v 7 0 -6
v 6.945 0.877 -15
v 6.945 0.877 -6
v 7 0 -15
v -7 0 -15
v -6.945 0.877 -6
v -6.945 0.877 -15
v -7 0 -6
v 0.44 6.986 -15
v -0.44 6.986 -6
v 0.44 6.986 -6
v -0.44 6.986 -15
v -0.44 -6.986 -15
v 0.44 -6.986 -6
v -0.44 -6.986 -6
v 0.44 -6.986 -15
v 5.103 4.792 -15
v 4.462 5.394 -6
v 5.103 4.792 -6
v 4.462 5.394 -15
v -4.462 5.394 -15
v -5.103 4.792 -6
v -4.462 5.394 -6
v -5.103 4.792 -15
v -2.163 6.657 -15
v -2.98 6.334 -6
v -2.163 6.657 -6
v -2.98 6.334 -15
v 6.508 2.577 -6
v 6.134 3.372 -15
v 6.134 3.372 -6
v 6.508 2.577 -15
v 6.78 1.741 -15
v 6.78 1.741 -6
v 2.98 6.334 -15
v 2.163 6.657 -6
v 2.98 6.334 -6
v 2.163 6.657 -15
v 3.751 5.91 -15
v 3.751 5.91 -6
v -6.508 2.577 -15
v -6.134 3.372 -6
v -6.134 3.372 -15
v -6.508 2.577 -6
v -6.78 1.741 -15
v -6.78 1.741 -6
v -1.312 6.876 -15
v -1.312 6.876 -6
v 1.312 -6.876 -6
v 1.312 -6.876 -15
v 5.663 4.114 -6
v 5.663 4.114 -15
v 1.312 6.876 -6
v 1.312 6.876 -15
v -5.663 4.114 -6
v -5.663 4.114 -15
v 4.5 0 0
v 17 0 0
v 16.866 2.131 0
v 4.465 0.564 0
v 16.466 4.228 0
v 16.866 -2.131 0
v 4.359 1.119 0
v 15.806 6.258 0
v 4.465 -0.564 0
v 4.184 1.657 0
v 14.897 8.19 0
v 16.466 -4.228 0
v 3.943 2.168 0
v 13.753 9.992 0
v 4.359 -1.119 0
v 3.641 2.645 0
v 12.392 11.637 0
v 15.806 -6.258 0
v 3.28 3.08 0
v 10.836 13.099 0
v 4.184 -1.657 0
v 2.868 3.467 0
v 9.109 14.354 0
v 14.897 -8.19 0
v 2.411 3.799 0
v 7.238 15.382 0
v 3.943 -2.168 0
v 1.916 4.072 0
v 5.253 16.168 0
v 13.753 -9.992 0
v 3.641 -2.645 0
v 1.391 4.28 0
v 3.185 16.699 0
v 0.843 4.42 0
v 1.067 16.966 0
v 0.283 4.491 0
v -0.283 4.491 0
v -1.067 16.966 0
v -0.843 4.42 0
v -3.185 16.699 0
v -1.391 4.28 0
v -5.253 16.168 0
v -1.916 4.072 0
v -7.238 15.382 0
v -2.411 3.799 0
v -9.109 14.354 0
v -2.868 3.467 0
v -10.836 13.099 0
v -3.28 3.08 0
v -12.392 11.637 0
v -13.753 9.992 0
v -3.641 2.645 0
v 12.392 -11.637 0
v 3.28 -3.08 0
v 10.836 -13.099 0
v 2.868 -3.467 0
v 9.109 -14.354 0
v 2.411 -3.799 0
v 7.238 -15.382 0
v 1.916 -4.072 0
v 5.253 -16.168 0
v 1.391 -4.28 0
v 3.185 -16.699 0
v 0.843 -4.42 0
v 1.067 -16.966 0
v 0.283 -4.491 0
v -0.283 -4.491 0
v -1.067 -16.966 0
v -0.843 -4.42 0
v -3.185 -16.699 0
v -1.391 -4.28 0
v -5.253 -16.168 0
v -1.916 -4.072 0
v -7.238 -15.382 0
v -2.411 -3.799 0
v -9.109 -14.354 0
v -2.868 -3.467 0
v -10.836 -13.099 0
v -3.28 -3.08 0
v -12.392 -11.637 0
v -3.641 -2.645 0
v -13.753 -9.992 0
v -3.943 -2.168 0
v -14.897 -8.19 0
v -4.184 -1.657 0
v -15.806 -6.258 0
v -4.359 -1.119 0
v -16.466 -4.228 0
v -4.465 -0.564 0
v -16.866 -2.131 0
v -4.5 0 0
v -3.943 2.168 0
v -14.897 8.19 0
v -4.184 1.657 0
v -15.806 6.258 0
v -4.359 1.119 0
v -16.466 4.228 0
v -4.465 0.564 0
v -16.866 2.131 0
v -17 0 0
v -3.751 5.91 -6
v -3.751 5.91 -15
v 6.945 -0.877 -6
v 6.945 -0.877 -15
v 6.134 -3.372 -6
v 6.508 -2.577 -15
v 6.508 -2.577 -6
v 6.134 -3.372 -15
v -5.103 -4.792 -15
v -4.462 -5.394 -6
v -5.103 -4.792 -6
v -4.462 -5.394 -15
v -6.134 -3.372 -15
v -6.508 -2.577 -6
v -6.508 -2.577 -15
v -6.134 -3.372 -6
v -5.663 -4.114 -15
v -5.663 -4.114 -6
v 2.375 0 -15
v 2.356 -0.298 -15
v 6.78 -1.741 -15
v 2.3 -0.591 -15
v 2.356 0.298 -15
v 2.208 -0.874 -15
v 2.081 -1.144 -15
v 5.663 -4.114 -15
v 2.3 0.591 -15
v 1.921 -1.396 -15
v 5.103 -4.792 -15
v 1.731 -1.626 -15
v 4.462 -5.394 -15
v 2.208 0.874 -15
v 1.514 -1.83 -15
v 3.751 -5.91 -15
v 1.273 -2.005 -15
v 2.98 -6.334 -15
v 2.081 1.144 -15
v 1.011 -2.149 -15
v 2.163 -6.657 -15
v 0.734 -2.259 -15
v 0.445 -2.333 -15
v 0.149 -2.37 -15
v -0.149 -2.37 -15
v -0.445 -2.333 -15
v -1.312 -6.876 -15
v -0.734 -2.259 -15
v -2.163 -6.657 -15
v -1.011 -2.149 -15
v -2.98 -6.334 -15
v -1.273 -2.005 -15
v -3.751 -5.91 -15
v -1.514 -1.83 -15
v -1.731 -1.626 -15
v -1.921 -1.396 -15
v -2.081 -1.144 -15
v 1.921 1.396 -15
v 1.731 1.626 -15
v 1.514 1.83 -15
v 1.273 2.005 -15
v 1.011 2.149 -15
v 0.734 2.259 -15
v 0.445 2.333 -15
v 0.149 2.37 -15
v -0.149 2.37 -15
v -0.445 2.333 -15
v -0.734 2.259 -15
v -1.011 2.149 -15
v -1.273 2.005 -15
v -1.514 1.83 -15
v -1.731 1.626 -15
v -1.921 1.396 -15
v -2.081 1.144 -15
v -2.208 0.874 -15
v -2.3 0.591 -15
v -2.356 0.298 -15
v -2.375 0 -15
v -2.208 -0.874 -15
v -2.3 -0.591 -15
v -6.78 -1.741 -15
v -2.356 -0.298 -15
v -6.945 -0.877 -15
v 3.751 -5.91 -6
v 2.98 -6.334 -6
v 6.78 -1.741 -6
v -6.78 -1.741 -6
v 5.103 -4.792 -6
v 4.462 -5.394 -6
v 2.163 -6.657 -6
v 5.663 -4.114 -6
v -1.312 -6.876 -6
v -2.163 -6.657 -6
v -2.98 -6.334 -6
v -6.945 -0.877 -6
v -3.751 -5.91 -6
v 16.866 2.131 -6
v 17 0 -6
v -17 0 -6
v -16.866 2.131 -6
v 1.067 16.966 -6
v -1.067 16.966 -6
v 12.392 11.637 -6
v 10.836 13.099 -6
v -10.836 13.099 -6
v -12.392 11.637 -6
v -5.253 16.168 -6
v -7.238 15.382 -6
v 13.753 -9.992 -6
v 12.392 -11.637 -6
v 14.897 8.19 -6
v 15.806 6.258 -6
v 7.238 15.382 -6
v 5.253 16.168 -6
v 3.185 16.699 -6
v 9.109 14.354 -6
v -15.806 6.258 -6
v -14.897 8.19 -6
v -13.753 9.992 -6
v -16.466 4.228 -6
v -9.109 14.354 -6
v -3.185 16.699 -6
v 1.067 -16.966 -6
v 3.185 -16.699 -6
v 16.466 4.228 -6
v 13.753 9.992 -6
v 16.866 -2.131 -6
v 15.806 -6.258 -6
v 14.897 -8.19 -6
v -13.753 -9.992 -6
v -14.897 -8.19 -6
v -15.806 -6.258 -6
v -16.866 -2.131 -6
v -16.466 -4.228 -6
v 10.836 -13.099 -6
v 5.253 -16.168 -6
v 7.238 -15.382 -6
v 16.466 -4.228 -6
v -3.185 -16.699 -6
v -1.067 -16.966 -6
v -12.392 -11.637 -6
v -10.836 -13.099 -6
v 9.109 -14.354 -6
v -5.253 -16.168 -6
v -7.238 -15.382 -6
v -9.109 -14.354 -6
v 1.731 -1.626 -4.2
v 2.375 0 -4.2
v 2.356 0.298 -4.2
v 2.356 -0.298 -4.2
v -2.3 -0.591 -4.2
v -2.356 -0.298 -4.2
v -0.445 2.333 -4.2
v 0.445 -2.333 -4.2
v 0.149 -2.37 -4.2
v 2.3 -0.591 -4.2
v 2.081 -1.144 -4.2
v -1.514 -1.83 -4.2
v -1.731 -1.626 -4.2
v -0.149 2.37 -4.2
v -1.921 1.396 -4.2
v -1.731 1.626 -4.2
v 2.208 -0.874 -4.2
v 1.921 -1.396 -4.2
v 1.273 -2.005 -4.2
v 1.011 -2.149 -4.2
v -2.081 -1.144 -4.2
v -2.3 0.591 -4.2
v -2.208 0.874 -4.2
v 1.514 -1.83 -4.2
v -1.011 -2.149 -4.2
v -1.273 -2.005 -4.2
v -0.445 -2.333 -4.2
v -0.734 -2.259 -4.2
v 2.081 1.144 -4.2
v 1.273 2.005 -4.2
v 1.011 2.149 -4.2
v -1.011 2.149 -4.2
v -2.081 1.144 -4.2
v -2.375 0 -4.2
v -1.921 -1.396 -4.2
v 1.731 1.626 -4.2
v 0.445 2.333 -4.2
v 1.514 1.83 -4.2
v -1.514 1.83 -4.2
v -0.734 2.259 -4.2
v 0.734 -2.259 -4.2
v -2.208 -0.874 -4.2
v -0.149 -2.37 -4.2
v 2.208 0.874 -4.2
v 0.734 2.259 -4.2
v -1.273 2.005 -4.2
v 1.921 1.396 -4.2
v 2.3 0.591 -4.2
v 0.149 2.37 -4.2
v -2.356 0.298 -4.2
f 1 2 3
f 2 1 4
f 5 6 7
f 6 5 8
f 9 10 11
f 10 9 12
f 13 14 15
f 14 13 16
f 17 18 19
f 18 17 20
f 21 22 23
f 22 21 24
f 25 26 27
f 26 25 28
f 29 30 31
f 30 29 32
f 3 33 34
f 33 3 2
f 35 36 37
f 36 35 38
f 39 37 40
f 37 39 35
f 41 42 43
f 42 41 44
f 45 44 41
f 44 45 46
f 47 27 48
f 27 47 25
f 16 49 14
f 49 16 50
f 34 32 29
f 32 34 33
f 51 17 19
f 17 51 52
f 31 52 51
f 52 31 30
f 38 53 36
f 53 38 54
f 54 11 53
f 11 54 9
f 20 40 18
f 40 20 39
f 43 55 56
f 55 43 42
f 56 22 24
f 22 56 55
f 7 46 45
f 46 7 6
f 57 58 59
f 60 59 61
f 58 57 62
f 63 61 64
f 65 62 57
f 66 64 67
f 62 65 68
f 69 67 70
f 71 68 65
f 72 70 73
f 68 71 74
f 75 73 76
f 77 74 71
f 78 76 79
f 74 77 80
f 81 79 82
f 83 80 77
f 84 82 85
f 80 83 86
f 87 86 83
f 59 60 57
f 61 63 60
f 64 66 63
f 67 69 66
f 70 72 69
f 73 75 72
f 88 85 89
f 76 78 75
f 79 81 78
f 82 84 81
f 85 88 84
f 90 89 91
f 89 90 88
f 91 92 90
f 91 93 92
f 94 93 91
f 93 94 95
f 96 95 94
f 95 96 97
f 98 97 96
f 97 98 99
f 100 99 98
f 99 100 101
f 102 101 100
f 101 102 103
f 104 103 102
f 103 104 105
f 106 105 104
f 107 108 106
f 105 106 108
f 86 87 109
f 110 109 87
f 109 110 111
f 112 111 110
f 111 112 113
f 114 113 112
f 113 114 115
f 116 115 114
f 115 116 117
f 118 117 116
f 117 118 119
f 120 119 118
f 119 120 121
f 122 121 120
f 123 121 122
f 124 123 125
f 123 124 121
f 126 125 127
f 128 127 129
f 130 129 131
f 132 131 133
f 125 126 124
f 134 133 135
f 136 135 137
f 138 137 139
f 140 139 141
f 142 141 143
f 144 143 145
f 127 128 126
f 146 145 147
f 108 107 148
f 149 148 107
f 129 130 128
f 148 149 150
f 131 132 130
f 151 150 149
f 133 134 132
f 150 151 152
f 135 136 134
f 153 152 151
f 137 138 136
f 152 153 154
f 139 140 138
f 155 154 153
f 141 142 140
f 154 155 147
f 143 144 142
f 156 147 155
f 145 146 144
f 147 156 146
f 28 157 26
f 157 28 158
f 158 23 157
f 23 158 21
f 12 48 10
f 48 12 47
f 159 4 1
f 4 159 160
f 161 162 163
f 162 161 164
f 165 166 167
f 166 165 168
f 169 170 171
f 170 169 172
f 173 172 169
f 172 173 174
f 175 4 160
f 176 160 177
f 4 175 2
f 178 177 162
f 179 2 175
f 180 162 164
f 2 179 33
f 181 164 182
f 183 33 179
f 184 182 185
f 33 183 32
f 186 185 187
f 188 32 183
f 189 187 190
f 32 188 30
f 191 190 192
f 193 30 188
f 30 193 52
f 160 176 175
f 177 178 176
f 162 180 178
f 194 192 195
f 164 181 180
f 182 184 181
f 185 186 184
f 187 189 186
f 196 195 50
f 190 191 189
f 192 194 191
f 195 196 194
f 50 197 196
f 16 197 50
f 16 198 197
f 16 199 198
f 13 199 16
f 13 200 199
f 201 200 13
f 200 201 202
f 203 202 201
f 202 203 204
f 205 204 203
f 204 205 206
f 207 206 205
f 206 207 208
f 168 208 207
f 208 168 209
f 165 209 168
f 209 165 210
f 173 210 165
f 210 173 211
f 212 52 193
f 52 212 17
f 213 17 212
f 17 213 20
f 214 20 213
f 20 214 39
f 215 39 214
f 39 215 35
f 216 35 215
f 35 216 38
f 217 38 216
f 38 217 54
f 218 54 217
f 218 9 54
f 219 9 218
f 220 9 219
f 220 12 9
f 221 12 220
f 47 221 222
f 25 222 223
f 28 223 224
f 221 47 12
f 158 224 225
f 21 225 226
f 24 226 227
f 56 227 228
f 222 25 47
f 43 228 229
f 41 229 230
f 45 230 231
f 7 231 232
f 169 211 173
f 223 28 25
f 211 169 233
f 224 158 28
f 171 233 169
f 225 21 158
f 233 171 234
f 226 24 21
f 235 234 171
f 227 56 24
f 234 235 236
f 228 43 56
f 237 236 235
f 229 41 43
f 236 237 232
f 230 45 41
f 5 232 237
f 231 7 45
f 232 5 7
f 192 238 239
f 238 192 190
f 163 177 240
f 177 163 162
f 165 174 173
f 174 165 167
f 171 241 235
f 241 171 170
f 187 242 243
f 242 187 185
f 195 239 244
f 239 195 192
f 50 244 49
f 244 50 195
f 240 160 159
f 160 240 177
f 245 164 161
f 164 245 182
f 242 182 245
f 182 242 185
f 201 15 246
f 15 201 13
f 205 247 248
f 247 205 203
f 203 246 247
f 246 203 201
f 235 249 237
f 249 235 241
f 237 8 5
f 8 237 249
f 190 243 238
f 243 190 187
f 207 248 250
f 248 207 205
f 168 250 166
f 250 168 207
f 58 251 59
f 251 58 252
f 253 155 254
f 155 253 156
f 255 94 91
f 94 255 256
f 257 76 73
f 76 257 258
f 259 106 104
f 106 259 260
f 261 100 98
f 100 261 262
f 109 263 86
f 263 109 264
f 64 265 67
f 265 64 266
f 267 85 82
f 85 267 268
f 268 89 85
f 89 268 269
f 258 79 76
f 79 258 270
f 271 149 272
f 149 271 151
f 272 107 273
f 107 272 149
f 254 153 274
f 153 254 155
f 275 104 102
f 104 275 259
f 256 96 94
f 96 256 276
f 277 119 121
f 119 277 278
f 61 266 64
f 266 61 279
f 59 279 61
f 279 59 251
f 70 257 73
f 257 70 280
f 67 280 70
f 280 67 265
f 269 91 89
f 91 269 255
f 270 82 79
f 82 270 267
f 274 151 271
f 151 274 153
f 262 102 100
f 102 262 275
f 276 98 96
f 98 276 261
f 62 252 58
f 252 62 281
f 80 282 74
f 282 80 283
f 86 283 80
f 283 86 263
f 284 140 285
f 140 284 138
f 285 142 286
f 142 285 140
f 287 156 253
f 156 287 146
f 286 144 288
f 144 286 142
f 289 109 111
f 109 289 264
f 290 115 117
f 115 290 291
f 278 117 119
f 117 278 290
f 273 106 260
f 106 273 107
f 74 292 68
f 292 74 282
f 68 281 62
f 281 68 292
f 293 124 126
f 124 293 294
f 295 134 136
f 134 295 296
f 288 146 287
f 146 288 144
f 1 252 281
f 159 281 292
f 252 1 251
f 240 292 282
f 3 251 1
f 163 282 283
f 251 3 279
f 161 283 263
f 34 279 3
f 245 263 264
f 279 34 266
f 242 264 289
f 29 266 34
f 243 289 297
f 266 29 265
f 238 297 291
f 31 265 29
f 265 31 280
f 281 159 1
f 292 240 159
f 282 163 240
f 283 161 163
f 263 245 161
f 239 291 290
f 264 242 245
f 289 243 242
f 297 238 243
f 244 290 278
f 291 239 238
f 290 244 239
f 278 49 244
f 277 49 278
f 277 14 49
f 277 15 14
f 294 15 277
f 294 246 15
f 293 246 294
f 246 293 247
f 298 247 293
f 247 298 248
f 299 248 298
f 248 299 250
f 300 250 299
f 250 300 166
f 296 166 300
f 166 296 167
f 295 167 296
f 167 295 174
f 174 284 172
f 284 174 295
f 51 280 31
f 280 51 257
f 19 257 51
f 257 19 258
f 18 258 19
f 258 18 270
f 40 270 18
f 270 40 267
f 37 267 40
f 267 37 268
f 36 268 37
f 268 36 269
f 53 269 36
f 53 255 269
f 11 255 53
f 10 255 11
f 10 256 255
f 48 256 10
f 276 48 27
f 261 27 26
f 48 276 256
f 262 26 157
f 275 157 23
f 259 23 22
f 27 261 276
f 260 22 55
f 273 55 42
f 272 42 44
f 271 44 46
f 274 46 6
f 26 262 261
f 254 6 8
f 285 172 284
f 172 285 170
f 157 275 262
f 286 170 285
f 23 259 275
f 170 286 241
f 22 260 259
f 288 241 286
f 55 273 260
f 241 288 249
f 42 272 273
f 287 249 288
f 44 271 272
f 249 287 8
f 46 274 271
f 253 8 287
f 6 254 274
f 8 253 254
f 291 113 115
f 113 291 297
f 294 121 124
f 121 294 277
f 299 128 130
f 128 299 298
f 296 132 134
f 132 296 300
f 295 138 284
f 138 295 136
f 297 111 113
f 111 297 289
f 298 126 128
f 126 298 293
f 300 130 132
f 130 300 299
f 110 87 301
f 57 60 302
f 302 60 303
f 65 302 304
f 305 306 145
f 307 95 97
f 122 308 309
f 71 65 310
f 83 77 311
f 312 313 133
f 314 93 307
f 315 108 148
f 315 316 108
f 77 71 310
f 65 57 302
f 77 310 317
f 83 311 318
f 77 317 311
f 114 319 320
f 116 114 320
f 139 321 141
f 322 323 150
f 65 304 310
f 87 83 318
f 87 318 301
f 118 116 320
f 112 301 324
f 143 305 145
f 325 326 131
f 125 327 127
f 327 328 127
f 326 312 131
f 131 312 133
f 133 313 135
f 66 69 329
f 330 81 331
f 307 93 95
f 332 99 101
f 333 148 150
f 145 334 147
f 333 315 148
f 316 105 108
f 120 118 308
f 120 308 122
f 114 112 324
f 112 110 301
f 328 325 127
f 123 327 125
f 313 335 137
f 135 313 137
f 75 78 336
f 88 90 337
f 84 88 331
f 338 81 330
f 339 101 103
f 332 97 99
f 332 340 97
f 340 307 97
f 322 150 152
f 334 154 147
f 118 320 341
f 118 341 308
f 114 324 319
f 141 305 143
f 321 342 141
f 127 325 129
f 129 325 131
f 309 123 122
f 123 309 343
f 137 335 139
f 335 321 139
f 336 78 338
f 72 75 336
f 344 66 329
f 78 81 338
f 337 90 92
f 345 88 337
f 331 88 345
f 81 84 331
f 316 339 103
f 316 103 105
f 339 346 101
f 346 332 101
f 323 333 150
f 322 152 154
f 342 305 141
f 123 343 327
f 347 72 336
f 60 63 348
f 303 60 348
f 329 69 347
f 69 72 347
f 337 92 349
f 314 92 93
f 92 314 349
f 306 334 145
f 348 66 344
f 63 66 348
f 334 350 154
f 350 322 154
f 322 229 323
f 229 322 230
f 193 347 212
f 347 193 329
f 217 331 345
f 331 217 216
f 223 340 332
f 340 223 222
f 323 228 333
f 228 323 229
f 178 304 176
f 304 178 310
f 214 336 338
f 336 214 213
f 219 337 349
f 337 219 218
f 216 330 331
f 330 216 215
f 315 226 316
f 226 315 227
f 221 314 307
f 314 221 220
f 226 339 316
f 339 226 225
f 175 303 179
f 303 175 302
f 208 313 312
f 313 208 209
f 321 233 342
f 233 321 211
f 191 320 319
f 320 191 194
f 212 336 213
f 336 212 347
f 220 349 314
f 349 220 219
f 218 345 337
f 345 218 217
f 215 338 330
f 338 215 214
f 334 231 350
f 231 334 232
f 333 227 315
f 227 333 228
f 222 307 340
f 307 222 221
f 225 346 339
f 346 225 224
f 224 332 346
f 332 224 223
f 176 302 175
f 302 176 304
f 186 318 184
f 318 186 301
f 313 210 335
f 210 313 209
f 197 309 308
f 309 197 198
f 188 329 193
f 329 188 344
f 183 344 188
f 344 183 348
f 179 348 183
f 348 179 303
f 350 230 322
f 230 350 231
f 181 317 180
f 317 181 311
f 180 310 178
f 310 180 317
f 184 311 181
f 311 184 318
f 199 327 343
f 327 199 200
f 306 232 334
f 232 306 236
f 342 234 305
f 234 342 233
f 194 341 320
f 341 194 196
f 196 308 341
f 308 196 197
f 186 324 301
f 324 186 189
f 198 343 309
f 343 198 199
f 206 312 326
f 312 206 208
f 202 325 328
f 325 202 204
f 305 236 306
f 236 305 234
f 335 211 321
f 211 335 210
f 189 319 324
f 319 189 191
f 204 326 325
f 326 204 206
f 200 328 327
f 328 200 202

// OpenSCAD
$fn = 50;


difference() {
	union() {
		translate(v = [0, 0, -15.0000000000]) {
			cylinder(h = 15, r = 7.0000000000);
		}
		translate(v = [0, 0, -6.0000000000]) {
			cylinder(h = 6, r = 17.0000000000);
		}
	}
	union() {
		translate(v = [0, 0, 0]) {
			rotate(a = [0, 0, 0]) {
				difference() {
					union() {
						#translate(v = [0, 0, -15.0000000000]) {
							cylinder(h = 15, r = 2.2500000000);
						}
						#translate(v = [0, 0, -4.2000000000]) {
							cylinder(h = 4.2000000000, r1 = 2.3750000000, r2 = 4.5000000000);
						}
						#translate(v = [0, 0, -15.0000000000]) {
							cylinder(h = 15, r = 2.3750000000);
						}
						#translate(v = [0, 0, -15.0000000000]) {
							cylinder(h = 15, r = 2.2500000000);
						}
					}
					union();
				}
			}
		}
	}
}
